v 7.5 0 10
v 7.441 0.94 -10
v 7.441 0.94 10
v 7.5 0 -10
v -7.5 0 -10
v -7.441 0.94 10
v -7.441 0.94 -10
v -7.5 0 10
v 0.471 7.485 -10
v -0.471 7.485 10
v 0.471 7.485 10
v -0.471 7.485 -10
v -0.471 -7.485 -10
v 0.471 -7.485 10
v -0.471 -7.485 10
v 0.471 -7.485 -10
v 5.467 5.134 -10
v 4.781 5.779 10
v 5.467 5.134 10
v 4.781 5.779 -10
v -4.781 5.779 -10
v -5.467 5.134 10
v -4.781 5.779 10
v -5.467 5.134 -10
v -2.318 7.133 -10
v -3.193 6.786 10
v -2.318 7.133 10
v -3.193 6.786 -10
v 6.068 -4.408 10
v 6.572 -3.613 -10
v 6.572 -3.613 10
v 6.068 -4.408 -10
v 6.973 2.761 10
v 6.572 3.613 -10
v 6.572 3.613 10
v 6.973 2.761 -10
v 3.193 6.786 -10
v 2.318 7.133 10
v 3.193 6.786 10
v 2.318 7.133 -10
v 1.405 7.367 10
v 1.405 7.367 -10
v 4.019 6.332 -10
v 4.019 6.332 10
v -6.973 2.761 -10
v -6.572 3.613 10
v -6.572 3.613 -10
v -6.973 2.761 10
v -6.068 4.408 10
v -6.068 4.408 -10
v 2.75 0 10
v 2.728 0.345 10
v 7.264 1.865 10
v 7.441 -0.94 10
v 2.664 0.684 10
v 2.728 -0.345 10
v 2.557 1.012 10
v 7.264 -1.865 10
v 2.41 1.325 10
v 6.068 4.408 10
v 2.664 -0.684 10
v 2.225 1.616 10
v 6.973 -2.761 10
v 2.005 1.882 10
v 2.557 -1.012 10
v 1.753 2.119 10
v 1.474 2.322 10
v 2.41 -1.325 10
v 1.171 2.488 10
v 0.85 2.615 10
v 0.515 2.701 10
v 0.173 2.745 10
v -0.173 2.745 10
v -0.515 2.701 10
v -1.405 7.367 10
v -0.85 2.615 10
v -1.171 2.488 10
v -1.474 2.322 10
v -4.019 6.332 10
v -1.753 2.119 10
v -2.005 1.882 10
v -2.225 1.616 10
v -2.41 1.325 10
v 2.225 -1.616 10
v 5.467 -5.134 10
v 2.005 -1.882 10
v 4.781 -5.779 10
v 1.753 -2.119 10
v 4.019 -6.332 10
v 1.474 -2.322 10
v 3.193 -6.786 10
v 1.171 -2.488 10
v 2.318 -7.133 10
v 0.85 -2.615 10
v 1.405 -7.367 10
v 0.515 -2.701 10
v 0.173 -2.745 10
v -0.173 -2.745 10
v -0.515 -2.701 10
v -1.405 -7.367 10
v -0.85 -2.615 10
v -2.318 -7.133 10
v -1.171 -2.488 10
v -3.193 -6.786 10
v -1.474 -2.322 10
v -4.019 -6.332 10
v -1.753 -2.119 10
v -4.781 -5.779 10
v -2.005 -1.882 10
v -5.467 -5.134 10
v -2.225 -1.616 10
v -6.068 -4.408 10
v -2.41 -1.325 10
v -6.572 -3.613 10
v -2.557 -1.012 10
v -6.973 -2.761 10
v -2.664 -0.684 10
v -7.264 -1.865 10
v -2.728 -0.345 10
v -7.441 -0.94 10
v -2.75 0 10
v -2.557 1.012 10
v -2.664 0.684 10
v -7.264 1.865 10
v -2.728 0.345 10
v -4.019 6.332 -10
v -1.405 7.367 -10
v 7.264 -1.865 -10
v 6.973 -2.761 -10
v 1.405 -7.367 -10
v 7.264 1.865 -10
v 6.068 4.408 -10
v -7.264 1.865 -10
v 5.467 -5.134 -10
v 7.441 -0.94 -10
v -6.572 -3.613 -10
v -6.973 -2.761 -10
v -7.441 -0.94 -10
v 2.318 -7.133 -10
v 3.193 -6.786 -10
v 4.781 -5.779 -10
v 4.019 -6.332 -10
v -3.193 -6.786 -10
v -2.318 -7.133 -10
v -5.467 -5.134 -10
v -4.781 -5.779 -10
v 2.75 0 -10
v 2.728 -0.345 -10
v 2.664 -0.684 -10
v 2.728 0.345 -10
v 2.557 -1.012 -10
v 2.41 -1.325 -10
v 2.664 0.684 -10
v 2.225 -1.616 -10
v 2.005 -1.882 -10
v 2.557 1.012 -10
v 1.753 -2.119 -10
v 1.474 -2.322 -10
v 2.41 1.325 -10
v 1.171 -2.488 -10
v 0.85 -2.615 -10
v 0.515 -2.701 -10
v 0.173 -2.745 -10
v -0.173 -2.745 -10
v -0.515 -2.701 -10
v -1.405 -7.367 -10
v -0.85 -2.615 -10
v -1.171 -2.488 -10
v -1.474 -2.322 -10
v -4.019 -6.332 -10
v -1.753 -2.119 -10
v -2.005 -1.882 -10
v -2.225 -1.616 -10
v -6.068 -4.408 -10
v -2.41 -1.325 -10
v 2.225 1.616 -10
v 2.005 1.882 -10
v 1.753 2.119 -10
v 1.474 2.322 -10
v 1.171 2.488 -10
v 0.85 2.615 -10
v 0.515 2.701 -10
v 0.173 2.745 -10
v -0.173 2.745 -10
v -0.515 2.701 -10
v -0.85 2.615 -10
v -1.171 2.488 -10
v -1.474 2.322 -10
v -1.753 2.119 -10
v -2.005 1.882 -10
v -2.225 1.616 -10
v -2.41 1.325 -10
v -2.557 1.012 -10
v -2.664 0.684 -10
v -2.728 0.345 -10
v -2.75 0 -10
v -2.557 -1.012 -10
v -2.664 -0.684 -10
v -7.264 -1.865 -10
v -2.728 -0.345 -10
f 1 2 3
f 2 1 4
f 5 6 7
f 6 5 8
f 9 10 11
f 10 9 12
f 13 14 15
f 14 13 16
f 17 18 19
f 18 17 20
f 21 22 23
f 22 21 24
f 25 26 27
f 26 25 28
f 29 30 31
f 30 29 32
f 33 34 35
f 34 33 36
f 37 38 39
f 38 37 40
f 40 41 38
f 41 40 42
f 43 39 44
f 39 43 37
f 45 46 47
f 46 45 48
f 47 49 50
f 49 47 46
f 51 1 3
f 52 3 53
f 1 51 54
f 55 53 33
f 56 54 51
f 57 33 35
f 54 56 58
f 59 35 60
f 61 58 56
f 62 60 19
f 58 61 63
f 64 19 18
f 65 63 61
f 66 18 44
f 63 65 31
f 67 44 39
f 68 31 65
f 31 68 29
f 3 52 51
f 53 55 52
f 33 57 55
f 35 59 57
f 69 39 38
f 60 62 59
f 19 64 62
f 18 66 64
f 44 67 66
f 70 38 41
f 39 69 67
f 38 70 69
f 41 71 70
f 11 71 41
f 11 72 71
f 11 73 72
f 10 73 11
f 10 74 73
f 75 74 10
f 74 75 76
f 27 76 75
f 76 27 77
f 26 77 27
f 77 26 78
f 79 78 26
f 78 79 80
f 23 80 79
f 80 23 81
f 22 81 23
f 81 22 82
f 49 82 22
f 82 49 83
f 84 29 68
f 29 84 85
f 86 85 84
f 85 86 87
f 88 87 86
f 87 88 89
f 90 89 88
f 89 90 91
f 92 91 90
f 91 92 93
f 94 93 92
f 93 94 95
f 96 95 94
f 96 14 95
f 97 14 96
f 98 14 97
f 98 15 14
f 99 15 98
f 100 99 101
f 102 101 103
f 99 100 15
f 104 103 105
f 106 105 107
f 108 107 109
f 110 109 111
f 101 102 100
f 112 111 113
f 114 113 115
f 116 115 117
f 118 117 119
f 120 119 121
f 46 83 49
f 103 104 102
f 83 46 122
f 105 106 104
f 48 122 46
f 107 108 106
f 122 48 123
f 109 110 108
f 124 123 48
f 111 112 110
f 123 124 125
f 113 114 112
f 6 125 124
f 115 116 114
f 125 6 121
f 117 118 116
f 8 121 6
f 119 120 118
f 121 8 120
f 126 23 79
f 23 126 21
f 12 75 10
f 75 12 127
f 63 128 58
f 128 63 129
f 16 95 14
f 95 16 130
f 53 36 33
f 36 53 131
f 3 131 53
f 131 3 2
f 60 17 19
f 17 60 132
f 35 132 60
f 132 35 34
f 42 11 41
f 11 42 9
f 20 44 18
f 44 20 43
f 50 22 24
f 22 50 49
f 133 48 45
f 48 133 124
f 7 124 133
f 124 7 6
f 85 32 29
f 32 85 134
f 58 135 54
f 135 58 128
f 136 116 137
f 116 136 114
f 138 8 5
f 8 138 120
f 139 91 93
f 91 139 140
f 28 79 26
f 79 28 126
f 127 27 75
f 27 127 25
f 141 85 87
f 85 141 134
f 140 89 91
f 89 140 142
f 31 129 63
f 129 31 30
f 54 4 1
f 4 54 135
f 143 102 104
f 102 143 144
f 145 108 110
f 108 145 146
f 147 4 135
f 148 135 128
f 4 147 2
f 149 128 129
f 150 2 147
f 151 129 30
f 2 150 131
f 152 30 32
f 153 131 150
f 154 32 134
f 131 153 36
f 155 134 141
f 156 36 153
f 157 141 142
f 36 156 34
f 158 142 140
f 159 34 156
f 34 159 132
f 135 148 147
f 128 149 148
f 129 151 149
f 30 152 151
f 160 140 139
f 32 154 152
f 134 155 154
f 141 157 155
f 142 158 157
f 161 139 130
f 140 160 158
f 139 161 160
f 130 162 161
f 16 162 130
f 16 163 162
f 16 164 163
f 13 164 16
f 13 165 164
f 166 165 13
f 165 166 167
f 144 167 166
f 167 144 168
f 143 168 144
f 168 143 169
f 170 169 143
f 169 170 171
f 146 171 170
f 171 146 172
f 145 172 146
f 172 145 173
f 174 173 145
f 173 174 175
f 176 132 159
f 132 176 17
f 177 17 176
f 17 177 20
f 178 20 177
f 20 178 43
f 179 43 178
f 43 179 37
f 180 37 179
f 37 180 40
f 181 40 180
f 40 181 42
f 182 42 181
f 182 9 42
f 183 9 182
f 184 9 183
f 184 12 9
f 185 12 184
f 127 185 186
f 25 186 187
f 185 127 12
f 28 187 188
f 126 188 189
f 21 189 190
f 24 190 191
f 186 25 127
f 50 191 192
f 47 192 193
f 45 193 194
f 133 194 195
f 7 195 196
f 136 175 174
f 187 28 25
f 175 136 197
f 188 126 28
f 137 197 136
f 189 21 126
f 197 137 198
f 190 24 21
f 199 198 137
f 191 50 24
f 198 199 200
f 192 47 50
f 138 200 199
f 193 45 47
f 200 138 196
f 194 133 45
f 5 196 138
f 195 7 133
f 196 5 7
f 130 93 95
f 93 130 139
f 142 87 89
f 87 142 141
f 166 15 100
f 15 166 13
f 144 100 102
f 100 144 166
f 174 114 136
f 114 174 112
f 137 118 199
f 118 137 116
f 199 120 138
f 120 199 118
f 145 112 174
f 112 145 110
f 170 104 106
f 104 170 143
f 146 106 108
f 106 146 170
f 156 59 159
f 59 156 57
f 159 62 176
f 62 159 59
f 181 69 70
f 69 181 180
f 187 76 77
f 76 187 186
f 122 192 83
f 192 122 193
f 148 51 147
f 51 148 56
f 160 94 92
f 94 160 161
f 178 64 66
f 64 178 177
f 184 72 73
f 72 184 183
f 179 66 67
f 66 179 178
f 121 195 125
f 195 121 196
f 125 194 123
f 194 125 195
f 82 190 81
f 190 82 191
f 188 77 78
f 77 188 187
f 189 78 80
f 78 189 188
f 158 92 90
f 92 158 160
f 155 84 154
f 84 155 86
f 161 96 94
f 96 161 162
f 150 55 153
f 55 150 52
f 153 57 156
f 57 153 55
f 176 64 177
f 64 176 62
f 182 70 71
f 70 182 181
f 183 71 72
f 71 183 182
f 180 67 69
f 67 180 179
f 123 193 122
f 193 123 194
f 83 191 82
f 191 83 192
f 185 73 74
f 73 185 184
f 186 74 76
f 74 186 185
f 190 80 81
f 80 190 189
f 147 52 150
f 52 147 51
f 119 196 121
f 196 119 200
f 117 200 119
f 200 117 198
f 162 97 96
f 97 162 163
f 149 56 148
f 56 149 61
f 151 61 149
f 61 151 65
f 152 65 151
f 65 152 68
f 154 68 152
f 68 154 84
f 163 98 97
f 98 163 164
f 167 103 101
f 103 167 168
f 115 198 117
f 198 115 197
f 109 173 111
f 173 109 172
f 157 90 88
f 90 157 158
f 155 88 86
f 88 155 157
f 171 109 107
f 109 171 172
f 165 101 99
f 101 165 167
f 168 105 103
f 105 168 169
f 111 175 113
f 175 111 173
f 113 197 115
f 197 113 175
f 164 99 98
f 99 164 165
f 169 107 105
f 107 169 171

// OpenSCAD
$fn = 50;


difference() {
	union() {
		translate(v = [0, 0, -10.0000000000]) {
			cylinder(h = 20, r = 7.5000000000);
		}
	}
	union() {
		translate(v = [0, 0, -100.0000000000]) {
			cylinder(h = 200, r = 2.7500000000);
		}
	}
}
